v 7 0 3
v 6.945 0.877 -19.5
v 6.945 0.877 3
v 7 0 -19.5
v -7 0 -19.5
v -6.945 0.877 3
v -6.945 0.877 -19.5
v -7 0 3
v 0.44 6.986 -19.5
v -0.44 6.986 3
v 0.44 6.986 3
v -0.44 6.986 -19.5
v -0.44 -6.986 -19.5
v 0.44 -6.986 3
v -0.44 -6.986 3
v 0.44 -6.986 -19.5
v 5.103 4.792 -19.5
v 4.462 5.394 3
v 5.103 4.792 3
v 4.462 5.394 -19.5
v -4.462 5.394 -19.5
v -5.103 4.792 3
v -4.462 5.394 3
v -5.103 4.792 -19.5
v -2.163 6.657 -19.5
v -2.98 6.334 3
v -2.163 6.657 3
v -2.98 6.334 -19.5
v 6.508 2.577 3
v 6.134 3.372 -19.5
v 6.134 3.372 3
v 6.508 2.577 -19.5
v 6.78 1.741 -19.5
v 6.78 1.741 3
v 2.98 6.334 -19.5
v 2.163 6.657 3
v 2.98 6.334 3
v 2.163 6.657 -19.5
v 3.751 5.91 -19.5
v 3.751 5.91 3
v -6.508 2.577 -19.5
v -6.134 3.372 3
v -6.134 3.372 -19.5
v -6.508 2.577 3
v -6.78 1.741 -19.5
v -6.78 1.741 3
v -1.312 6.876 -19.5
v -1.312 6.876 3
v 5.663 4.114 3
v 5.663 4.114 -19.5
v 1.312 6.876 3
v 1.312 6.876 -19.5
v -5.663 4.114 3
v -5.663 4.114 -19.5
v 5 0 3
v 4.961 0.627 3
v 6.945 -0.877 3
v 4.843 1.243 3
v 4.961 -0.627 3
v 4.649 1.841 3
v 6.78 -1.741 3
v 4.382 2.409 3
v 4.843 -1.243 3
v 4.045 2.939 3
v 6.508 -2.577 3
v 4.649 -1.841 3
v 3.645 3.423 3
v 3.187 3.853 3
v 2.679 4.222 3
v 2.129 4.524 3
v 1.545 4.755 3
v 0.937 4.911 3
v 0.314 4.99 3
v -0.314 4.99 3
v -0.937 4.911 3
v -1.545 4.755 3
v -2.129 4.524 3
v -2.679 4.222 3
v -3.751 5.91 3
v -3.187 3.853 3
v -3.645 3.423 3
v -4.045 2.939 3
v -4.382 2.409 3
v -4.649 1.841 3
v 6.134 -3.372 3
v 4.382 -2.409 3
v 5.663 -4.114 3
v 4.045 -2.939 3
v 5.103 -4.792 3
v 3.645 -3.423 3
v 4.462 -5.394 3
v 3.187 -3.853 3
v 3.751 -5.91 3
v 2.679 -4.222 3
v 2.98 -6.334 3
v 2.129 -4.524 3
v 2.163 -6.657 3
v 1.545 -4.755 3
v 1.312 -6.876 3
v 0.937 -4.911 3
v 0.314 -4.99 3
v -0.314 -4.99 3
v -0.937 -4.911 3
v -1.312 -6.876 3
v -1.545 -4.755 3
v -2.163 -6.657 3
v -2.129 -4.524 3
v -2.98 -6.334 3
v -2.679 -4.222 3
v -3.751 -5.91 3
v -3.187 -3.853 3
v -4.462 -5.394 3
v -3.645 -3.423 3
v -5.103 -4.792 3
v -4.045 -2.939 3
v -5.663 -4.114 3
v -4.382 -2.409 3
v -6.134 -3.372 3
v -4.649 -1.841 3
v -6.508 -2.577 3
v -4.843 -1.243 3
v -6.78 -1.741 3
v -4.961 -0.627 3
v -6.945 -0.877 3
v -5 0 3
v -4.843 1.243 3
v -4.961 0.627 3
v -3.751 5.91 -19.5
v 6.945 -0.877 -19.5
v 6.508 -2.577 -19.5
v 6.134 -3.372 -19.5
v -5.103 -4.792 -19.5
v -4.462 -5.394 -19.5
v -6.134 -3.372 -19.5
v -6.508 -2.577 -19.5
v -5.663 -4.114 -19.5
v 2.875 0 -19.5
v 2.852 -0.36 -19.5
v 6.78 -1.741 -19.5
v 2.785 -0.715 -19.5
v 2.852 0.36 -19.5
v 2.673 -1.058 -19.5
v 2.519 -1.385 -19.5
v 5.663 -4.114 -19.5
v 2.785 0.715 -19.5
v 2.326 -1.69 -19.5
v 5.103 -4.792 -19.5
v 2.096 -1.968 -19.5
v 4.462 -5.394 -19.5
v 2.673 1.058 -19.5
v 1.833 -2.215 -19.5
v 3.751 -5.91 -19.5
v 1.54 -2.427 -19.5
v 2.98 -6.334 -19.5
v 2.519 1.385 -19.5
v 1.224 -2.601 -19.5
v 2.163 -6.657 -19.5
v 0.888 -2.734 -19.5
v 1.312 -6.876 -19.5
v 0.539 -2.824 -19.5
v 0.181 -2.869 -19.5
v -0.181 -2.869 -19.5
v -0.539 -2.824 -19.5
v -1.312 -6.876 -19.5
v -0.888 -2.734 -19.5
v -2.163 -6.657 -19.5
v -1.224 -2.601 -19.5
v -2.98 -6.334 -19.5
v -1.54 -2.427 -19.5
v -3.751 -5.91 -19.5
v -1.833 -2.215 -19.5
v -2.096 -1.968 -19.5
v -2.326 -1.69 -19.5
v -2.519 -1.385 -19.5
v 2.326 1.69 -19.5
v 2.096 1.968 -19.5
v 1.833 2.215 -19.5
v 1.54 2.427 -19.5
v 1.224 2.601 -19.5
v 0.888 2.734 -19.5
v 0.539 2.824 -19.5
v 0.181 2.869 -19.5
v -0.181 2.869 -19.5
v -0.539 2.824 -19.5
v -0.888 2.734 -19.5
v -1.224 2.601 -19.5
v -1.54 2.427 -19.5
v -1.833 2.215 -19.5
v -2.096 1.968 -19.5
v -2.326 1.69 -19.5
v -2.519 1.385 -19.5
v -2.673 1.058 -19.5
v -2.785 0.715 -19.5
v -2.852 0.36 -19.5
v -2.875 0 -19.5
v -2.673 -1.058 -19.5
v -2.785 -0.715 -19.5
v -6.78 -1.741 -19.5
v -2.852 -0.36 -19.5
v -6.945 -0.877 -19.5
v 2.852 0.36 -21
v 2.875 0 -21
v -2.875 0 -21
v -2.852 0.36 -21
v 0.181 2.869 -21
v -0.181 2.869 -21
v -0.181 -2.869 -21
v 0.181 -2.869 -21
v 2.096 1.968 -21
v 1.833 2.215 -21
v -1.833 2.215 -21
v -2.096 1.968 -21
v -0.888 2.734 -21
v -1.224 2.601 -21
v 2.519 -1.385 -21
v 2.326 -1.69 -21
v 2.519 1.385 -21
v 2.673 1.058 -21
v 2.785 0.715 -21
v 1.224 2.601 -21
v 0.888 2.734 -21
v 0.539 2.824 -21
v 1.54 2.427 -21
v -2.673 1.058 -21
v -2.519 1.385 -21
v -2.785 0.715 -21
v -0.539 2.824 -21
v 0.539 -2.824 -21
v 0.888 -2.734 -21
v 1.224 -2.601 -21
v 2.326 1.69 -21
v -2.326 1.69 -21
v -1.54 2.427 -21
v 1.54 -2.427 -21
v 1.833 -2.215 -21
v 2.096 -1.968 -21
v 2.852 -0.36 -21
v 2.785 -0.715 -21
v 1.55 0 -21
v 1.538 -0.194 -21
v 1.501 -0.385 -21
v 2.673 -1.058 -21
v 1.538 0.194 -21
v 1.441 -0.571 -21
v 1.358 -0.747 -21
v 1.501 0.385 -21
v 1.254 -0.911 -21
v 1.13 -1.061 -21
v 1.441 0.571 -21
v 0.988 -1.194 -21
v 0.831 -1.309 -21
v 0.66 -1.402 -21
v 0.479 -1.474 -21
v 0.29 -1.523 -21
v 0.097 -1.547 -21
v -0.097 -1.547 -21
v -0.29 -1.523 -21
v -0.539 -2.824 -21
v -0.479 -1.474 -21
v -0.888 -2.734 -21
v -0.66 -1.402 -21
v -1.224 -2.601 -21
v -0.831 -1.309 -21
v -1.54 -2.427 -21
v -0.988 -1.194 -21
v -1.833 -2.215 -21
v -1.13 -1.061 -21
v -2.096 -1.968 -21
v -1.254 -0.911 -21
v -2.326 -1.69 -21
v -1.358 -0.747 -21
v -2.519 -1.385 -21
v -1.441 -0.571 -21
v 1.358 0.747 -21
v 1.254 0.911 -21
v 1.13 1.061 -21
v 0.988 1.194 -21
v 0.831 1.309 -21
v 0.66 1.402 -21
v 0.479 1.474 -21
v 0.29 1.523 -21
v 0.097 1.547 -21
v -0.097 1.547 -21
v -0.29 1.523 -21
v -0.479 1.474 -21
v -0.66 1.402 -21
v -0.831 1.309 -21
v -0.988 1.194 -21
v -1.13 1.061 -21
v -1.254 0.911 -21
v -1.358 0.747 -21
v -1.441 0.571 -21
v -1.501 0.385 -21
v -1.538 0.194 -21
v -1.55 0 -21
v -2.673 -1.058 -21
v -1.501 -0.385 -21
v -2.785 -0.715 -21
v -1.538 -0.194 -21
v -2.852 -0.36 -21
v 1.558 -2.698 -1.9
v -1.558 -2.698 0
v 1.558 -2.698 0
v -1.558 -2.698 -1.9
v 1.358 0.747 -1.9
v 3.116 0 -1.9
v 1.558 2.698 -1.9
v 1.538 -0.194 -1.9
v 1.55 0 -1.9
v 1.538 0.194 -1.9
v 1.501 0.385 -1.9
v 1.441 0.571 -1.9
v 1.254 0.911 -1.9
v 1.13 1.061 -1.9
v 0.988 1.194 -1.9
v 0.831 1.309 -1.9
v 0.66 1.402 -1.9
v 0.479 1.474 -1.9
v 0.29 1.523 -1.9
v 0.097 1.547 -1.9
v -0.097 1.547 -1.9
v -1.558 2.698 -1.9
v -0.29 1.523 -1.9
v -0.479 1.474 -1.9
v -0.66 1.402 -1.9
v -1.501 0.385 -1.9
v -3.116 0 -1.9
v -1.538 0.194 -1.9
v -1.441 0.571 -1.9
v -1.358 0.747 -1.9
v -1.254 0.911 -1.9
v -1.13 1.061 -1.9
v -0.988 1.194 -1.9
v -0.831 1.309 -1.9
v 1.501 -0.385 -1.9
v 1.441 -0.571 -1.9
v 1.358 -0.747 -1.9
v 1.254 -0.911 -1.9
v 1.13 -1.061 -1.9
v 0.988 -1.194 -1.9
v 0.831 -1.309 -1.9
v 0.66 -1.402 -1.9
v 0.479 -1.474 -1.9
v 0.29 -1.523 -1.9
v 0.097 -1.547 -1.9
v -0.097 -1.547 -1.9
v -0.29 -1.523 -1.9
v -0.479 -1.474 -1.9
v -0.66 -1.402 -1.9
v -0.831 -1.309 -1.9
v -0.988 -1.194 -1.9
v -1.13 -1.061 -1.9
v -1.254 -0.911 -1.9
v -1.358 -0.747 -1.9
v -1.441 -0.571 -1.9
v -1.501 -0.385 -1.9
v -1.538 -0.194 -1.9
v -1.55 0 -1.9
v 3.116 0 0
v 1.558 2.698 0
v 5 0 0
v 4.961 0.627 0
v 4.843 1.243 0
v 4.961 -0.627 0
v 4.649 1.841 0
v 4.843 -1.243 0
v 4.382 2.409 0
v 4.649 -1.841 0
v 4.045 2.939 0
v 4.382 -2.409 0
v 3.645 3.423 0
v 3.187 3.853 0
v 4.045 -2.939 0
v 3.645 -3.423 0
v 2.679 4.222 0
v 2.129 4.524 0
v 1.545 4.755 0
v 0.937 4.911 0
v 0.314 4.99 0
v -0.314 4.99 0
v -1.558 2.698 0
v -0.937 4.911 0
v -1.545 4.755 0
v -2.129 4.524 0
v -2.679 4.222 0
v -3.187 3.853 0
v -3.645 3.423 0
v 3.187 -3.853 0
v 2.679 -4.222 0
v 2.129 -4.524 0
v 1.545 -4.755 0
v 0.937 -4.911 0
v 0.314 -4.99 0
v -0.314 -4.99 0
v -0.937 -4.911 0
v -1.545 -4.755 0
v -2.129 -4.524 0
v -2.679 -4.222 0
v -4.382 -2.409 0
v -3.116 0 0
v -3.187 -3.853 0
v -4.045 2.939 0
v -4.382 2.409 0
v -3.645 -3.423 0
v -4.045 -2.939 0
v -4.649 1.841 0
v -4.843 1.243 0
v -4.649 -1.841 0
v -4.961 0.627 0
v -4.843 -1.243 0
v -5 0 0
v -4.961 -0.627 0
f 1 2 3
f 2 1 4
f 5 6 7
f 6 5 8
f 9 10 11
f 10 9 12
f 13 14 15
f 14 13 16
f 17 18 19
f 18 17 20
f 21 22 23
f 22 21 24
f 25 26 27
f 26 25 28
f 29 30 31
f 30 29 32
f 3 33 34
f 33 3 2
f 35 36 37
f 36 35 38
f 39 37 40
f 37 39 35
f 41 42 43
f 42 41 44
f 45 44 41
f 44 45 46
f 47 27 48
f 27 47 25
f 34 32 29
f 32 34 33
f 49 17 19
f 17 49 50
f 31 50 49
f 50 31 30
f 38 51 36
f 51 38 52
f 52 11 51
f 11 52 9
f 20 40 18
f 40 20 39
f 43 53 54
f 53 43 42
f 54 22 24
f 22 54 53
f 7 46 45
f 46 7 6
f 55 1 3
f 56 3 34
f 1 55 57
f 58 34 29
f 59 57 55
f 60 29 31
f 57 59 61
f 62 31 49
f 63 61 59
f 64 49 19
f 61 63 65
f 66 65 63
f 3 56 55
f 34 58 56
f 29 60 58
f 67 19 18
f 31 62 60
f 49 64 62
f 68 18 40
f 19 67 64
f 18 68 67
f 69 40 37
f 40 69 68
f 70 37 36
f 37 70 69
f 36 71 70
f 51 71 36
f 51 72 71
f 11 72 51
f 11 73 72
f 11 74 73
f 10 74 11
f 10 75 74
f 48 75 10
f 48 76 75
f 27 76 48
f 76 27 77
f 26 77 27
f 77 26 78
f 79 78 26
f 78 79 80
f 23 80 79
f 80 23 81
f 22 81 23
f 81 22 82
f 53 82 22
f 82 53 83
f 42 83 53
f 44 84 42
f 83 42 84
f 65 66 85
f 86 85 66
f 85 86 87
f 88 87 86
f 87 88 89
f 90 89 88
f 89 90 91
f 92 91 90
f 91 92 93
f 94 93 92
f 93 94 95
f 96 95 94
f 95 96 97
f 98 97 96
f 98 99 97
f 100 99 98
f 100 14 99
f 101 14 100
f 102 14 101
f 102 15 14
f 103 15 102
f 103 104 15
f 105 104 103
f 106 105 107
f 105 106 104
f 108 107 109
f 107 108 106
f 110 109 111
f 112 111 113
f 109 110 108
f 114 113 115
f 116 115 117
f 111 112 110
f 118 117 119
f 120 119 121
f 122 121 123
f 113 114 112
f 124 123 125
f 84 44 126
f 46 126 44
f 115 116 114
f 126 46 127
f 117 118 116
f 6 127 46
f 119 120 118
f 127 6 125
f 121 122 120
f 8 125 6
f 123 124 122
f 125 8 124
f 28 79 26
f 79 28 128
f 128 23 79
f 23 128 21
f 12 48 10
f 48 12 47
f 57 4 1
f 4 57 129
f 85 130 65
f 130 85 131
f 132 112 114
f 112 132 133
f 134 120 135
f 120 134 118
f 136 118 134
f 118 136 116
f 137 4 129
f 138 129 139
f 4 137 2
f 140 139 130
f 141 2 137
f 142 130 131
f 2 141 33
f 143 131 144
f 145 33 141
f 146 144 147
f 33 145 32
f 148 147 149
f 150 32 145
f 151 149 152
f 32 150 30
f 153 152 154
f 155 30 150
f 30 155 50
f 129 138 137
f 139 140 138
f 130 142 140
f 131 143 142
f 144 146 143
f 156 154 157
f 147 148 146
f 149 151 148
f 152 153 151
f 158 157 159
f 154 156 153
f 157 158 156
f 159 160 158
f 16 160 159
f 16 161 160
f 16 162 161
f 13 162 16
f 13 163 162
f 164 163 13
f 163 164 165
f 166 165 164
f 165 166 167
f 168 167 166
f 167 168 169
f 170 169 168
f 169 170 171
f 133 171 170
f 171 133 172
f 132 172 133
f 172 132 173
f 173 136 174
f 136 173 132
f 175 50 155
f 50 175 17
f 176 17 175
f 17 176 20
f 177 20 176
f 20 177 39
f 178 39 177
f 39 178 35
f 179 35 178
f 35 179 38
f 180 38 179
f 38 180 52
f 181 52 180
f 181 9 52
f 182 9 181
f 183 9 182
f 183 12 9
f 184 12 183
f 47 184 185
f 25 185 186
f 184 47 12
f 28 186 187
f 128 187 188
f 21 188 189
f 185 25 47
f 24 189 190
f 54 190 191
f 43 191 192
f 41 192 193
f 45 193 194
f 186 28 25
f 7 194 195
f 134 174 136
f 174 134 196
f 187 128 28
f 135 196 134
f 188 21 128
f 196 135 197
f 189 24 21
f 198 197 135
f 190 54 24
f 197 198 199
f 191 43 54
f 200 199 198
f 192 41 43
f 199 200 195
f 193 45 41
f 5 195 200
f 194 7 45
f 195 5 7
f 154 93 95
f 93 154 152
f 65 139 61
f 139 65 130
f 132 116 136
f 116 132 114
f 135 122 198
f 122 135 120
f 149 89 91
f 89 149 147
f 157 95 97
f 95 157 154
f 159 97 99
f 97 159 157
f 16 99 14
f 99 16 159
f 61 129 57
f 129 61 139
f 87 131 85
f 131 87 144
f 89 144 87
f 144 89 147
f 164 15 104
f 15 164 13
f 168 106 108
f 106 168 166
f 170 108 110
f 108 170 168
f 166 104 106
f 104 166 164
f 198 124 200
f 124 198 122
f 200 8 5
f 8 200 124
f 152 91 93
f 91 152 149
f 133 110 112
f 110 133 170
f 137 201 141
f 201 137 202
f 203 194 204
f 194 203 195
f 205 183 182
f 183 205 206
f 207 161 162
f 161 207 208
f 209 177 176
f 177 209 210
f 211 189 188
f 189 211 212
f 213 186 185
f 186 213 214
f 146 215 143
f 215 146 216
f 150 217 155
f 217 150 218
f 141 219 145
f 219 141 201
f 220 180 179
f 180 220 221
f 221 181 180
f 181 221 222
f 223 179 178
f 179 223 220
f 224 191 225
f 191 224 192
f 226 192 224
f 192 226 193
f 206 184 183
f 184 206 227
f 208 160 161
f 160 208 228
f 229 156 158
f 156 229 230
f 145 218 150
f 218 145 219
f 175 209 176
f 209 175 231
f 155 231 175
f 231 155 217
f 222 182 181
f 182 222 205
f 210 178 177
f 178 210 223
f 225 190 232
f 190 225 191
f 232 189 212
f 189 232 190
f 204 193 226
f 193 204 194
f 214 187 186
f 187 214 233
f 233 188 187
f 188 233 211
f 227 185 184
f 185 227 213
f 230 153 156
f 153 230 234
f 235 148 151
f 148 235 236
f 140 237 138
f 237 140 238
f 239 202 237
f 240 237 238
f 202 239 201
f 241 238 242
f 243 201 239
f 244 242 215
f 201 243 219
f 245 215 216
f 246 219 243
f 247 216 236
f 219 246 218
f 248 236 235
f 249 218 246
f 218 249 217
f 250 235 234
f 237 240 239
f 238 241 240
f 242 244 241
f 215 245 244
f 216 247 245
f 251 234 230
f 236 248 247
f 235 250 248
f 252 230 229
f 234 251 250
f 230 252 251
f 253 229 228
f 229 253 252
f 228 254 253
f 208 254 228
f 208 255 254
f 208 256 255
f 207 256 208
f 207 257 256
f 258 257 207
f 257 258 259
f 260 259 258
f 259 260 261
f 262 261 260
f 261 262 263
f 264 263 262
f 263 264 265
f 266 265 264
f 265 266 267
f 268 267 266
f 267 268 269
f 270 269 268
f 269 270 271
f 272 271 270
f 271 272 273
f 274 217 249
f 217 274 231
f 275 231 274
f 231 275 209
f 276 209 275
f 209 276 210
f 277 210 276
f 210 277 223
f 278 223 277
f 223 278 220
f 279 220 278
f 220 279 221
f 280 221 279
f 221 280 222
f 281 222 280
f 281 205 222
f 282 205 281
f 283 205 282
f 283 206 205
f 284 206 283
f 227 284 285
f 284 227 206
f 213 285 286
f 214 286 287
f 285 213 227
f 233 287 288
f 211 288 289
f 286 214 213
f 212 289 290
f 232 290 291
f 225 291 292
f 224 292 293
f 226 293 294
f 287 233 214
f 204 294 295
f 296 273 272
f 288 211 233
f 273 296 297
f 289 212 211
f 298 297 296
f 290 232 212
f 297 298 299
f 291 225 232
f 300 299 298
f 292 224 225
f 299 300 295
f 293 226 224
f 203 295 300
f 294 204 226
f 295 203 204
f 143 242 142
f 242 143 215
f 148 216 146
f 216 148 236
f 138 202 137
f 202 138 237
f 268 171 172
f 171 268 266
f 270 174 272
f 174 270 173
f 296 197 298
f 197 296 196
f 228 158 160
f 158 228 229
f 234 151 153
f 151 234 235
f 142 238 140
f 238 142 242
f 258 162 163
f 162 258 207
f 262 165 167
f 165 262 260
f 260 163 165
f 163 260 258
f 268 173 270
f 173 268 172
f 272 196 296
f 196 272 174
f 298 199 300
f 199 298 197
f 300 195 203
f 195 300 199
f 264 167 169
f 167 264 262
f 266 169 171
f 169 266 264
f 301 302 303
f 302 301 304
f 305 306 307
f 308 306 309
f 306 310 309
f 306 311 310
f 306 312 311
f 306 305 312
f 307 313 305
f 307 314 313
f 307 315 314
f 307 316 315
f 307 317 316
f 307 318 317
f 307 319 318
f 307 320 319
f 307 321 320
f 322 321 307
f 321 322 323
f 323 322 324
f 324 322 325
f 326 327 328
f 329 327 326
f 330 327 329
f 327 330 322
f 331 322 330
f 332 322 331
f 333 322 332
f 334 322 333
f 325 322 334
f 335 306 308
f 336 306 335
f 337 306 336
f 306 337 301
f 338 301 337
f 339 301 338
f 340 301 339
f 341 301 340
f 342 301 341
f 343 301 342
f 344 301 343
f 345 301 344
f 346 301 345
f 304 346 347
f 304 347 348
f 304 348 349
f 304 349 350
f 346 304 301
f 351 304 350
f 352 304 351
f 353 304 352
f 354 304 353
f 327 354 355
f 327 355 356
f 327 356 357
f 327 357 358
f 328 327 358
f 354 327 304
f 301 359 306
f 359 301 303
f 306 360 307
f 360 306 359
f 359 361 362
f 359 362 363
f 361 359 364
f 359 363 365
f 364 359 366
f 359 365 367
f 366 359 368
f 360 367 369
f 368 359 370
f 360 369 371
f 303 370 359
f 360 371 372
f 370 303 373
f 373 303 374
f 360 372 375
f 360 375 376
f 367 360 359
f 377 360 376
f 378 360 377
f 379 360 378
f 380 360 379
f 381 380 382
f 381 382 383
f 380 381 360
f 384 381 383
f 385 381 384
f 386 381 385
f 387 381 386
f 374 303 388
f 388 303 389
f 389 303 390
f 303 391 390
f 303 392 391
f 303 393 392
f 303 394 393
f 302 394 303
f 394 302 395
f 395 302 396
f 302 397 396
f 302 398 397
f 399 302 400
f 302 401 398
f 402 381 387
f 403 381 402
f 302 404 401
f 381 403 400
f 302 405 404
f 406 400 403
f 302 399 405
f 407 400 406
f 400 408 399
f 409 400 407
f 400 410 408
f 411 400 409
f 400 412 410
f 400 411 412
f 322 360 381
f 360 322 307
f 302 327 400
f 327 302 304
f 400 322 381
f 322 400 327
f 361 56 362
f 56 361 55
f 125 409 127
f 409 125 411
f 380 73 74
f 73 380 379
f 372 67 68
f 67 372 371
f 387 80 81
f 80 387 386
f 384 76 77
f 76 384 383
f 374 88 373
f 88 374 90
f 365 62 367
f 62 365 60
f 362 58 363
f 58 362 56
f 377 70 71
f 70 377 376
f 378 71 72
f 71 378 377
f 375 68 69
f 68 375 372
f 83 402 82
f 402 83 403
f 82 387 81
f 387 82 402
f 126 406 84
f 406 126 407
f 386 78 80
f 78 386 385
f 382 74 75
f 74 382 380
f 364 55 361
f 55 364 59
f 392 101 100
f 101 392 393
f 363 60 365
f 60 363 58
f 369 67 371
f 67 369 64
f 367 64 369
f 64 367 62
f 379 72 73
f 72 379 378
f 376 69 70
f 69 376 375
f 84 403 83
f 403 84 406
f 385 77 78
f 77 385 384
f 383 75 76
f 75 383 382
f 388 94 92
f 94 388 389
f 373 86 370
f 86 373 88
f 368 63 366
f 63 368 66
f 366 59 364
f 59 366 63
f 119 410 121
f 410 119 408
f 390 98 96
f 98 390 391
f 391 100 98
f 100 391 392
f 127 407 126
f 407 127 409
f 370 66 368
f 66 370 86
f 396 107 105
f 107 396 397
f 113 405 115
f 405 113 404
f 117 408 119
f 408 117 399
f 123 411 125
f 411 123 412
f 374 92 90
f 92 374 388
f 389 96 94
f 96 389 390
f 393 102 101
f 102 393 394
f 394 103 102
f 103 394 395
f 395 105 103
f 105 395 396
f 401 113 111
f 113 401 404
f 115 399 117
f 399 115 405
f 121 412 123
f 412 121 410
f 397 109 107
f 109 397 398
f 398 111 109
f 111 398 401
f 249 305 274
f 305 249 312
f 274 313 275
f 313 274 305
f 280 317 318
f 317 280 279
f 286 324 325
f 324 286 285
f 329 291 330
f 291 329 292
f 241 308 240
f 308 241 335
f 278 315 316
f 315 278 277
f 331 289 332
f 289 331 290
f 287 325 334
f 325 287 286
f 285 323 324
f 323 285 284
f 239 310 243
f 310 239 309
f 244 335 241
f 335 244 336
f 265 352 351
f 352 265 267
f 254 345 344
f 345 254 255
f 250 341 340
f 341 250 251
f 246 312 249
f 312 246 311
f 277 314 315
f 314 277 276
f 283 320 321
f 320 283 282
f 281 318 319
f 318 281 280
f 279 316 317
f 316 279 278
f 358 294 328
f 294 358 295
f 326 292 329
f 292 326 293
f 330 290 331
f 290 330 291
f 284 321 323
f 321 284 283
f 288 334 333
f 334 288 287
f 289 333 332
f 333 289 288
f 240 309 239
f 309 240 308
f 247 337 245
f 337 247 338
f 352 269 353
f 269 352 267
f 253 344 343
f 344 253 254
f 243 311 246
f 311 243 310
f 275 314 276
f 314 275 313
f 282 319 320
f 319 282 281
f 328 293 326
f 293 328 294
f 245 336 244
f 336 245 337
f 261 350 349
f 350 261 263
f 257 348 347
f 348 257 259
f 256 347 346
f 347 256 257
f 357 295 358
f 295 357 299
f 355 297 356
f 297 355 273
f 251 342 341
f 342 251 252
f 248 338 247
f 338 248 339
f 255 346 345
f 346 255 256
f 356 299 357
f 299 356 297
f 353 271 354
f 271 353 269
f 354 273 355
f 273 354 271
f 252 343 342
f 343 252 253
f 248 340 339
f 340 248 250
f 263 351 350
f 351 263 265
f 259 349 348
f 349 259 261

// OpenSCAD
$fn = 50;

difference() {
	union() {
		translate(v = [0, 0, -19.5]) {
			cylinder(h = 22.5, r = 7.0);
		}
		#translate(v = [0, 0, -21.0]) {
			cylinder(h = 21, r = 2.875);
		}
	}
	union() {
		translate(v = [0, 0, 0]) {
			rotate(a = [0, 0, 0]) {
				difference() {
					union() {
						translate(v = [0, 0, -1.9]) {
							linear_extrude(height = 1.9) {
								polygon(points = [[3.1158, 0.0], [1.5579000000000005, 2.698361953111554], [-1.5578999999999994, 2.6983619531115544], [-3.1158, 3.815754496783323e-16], [-1.5579000000000014, -2.6983619531115535], [1.557899999999998, -2.6983619531115552]]);
							}
						}
					}
					union();
				}
			}
		}
		#cylinder(h = 3, r = 5.0);
		#translate(v = [0, 0, -100.0]) {
			cylinder(h = 200, r = 1.55);
		}
	}
}
